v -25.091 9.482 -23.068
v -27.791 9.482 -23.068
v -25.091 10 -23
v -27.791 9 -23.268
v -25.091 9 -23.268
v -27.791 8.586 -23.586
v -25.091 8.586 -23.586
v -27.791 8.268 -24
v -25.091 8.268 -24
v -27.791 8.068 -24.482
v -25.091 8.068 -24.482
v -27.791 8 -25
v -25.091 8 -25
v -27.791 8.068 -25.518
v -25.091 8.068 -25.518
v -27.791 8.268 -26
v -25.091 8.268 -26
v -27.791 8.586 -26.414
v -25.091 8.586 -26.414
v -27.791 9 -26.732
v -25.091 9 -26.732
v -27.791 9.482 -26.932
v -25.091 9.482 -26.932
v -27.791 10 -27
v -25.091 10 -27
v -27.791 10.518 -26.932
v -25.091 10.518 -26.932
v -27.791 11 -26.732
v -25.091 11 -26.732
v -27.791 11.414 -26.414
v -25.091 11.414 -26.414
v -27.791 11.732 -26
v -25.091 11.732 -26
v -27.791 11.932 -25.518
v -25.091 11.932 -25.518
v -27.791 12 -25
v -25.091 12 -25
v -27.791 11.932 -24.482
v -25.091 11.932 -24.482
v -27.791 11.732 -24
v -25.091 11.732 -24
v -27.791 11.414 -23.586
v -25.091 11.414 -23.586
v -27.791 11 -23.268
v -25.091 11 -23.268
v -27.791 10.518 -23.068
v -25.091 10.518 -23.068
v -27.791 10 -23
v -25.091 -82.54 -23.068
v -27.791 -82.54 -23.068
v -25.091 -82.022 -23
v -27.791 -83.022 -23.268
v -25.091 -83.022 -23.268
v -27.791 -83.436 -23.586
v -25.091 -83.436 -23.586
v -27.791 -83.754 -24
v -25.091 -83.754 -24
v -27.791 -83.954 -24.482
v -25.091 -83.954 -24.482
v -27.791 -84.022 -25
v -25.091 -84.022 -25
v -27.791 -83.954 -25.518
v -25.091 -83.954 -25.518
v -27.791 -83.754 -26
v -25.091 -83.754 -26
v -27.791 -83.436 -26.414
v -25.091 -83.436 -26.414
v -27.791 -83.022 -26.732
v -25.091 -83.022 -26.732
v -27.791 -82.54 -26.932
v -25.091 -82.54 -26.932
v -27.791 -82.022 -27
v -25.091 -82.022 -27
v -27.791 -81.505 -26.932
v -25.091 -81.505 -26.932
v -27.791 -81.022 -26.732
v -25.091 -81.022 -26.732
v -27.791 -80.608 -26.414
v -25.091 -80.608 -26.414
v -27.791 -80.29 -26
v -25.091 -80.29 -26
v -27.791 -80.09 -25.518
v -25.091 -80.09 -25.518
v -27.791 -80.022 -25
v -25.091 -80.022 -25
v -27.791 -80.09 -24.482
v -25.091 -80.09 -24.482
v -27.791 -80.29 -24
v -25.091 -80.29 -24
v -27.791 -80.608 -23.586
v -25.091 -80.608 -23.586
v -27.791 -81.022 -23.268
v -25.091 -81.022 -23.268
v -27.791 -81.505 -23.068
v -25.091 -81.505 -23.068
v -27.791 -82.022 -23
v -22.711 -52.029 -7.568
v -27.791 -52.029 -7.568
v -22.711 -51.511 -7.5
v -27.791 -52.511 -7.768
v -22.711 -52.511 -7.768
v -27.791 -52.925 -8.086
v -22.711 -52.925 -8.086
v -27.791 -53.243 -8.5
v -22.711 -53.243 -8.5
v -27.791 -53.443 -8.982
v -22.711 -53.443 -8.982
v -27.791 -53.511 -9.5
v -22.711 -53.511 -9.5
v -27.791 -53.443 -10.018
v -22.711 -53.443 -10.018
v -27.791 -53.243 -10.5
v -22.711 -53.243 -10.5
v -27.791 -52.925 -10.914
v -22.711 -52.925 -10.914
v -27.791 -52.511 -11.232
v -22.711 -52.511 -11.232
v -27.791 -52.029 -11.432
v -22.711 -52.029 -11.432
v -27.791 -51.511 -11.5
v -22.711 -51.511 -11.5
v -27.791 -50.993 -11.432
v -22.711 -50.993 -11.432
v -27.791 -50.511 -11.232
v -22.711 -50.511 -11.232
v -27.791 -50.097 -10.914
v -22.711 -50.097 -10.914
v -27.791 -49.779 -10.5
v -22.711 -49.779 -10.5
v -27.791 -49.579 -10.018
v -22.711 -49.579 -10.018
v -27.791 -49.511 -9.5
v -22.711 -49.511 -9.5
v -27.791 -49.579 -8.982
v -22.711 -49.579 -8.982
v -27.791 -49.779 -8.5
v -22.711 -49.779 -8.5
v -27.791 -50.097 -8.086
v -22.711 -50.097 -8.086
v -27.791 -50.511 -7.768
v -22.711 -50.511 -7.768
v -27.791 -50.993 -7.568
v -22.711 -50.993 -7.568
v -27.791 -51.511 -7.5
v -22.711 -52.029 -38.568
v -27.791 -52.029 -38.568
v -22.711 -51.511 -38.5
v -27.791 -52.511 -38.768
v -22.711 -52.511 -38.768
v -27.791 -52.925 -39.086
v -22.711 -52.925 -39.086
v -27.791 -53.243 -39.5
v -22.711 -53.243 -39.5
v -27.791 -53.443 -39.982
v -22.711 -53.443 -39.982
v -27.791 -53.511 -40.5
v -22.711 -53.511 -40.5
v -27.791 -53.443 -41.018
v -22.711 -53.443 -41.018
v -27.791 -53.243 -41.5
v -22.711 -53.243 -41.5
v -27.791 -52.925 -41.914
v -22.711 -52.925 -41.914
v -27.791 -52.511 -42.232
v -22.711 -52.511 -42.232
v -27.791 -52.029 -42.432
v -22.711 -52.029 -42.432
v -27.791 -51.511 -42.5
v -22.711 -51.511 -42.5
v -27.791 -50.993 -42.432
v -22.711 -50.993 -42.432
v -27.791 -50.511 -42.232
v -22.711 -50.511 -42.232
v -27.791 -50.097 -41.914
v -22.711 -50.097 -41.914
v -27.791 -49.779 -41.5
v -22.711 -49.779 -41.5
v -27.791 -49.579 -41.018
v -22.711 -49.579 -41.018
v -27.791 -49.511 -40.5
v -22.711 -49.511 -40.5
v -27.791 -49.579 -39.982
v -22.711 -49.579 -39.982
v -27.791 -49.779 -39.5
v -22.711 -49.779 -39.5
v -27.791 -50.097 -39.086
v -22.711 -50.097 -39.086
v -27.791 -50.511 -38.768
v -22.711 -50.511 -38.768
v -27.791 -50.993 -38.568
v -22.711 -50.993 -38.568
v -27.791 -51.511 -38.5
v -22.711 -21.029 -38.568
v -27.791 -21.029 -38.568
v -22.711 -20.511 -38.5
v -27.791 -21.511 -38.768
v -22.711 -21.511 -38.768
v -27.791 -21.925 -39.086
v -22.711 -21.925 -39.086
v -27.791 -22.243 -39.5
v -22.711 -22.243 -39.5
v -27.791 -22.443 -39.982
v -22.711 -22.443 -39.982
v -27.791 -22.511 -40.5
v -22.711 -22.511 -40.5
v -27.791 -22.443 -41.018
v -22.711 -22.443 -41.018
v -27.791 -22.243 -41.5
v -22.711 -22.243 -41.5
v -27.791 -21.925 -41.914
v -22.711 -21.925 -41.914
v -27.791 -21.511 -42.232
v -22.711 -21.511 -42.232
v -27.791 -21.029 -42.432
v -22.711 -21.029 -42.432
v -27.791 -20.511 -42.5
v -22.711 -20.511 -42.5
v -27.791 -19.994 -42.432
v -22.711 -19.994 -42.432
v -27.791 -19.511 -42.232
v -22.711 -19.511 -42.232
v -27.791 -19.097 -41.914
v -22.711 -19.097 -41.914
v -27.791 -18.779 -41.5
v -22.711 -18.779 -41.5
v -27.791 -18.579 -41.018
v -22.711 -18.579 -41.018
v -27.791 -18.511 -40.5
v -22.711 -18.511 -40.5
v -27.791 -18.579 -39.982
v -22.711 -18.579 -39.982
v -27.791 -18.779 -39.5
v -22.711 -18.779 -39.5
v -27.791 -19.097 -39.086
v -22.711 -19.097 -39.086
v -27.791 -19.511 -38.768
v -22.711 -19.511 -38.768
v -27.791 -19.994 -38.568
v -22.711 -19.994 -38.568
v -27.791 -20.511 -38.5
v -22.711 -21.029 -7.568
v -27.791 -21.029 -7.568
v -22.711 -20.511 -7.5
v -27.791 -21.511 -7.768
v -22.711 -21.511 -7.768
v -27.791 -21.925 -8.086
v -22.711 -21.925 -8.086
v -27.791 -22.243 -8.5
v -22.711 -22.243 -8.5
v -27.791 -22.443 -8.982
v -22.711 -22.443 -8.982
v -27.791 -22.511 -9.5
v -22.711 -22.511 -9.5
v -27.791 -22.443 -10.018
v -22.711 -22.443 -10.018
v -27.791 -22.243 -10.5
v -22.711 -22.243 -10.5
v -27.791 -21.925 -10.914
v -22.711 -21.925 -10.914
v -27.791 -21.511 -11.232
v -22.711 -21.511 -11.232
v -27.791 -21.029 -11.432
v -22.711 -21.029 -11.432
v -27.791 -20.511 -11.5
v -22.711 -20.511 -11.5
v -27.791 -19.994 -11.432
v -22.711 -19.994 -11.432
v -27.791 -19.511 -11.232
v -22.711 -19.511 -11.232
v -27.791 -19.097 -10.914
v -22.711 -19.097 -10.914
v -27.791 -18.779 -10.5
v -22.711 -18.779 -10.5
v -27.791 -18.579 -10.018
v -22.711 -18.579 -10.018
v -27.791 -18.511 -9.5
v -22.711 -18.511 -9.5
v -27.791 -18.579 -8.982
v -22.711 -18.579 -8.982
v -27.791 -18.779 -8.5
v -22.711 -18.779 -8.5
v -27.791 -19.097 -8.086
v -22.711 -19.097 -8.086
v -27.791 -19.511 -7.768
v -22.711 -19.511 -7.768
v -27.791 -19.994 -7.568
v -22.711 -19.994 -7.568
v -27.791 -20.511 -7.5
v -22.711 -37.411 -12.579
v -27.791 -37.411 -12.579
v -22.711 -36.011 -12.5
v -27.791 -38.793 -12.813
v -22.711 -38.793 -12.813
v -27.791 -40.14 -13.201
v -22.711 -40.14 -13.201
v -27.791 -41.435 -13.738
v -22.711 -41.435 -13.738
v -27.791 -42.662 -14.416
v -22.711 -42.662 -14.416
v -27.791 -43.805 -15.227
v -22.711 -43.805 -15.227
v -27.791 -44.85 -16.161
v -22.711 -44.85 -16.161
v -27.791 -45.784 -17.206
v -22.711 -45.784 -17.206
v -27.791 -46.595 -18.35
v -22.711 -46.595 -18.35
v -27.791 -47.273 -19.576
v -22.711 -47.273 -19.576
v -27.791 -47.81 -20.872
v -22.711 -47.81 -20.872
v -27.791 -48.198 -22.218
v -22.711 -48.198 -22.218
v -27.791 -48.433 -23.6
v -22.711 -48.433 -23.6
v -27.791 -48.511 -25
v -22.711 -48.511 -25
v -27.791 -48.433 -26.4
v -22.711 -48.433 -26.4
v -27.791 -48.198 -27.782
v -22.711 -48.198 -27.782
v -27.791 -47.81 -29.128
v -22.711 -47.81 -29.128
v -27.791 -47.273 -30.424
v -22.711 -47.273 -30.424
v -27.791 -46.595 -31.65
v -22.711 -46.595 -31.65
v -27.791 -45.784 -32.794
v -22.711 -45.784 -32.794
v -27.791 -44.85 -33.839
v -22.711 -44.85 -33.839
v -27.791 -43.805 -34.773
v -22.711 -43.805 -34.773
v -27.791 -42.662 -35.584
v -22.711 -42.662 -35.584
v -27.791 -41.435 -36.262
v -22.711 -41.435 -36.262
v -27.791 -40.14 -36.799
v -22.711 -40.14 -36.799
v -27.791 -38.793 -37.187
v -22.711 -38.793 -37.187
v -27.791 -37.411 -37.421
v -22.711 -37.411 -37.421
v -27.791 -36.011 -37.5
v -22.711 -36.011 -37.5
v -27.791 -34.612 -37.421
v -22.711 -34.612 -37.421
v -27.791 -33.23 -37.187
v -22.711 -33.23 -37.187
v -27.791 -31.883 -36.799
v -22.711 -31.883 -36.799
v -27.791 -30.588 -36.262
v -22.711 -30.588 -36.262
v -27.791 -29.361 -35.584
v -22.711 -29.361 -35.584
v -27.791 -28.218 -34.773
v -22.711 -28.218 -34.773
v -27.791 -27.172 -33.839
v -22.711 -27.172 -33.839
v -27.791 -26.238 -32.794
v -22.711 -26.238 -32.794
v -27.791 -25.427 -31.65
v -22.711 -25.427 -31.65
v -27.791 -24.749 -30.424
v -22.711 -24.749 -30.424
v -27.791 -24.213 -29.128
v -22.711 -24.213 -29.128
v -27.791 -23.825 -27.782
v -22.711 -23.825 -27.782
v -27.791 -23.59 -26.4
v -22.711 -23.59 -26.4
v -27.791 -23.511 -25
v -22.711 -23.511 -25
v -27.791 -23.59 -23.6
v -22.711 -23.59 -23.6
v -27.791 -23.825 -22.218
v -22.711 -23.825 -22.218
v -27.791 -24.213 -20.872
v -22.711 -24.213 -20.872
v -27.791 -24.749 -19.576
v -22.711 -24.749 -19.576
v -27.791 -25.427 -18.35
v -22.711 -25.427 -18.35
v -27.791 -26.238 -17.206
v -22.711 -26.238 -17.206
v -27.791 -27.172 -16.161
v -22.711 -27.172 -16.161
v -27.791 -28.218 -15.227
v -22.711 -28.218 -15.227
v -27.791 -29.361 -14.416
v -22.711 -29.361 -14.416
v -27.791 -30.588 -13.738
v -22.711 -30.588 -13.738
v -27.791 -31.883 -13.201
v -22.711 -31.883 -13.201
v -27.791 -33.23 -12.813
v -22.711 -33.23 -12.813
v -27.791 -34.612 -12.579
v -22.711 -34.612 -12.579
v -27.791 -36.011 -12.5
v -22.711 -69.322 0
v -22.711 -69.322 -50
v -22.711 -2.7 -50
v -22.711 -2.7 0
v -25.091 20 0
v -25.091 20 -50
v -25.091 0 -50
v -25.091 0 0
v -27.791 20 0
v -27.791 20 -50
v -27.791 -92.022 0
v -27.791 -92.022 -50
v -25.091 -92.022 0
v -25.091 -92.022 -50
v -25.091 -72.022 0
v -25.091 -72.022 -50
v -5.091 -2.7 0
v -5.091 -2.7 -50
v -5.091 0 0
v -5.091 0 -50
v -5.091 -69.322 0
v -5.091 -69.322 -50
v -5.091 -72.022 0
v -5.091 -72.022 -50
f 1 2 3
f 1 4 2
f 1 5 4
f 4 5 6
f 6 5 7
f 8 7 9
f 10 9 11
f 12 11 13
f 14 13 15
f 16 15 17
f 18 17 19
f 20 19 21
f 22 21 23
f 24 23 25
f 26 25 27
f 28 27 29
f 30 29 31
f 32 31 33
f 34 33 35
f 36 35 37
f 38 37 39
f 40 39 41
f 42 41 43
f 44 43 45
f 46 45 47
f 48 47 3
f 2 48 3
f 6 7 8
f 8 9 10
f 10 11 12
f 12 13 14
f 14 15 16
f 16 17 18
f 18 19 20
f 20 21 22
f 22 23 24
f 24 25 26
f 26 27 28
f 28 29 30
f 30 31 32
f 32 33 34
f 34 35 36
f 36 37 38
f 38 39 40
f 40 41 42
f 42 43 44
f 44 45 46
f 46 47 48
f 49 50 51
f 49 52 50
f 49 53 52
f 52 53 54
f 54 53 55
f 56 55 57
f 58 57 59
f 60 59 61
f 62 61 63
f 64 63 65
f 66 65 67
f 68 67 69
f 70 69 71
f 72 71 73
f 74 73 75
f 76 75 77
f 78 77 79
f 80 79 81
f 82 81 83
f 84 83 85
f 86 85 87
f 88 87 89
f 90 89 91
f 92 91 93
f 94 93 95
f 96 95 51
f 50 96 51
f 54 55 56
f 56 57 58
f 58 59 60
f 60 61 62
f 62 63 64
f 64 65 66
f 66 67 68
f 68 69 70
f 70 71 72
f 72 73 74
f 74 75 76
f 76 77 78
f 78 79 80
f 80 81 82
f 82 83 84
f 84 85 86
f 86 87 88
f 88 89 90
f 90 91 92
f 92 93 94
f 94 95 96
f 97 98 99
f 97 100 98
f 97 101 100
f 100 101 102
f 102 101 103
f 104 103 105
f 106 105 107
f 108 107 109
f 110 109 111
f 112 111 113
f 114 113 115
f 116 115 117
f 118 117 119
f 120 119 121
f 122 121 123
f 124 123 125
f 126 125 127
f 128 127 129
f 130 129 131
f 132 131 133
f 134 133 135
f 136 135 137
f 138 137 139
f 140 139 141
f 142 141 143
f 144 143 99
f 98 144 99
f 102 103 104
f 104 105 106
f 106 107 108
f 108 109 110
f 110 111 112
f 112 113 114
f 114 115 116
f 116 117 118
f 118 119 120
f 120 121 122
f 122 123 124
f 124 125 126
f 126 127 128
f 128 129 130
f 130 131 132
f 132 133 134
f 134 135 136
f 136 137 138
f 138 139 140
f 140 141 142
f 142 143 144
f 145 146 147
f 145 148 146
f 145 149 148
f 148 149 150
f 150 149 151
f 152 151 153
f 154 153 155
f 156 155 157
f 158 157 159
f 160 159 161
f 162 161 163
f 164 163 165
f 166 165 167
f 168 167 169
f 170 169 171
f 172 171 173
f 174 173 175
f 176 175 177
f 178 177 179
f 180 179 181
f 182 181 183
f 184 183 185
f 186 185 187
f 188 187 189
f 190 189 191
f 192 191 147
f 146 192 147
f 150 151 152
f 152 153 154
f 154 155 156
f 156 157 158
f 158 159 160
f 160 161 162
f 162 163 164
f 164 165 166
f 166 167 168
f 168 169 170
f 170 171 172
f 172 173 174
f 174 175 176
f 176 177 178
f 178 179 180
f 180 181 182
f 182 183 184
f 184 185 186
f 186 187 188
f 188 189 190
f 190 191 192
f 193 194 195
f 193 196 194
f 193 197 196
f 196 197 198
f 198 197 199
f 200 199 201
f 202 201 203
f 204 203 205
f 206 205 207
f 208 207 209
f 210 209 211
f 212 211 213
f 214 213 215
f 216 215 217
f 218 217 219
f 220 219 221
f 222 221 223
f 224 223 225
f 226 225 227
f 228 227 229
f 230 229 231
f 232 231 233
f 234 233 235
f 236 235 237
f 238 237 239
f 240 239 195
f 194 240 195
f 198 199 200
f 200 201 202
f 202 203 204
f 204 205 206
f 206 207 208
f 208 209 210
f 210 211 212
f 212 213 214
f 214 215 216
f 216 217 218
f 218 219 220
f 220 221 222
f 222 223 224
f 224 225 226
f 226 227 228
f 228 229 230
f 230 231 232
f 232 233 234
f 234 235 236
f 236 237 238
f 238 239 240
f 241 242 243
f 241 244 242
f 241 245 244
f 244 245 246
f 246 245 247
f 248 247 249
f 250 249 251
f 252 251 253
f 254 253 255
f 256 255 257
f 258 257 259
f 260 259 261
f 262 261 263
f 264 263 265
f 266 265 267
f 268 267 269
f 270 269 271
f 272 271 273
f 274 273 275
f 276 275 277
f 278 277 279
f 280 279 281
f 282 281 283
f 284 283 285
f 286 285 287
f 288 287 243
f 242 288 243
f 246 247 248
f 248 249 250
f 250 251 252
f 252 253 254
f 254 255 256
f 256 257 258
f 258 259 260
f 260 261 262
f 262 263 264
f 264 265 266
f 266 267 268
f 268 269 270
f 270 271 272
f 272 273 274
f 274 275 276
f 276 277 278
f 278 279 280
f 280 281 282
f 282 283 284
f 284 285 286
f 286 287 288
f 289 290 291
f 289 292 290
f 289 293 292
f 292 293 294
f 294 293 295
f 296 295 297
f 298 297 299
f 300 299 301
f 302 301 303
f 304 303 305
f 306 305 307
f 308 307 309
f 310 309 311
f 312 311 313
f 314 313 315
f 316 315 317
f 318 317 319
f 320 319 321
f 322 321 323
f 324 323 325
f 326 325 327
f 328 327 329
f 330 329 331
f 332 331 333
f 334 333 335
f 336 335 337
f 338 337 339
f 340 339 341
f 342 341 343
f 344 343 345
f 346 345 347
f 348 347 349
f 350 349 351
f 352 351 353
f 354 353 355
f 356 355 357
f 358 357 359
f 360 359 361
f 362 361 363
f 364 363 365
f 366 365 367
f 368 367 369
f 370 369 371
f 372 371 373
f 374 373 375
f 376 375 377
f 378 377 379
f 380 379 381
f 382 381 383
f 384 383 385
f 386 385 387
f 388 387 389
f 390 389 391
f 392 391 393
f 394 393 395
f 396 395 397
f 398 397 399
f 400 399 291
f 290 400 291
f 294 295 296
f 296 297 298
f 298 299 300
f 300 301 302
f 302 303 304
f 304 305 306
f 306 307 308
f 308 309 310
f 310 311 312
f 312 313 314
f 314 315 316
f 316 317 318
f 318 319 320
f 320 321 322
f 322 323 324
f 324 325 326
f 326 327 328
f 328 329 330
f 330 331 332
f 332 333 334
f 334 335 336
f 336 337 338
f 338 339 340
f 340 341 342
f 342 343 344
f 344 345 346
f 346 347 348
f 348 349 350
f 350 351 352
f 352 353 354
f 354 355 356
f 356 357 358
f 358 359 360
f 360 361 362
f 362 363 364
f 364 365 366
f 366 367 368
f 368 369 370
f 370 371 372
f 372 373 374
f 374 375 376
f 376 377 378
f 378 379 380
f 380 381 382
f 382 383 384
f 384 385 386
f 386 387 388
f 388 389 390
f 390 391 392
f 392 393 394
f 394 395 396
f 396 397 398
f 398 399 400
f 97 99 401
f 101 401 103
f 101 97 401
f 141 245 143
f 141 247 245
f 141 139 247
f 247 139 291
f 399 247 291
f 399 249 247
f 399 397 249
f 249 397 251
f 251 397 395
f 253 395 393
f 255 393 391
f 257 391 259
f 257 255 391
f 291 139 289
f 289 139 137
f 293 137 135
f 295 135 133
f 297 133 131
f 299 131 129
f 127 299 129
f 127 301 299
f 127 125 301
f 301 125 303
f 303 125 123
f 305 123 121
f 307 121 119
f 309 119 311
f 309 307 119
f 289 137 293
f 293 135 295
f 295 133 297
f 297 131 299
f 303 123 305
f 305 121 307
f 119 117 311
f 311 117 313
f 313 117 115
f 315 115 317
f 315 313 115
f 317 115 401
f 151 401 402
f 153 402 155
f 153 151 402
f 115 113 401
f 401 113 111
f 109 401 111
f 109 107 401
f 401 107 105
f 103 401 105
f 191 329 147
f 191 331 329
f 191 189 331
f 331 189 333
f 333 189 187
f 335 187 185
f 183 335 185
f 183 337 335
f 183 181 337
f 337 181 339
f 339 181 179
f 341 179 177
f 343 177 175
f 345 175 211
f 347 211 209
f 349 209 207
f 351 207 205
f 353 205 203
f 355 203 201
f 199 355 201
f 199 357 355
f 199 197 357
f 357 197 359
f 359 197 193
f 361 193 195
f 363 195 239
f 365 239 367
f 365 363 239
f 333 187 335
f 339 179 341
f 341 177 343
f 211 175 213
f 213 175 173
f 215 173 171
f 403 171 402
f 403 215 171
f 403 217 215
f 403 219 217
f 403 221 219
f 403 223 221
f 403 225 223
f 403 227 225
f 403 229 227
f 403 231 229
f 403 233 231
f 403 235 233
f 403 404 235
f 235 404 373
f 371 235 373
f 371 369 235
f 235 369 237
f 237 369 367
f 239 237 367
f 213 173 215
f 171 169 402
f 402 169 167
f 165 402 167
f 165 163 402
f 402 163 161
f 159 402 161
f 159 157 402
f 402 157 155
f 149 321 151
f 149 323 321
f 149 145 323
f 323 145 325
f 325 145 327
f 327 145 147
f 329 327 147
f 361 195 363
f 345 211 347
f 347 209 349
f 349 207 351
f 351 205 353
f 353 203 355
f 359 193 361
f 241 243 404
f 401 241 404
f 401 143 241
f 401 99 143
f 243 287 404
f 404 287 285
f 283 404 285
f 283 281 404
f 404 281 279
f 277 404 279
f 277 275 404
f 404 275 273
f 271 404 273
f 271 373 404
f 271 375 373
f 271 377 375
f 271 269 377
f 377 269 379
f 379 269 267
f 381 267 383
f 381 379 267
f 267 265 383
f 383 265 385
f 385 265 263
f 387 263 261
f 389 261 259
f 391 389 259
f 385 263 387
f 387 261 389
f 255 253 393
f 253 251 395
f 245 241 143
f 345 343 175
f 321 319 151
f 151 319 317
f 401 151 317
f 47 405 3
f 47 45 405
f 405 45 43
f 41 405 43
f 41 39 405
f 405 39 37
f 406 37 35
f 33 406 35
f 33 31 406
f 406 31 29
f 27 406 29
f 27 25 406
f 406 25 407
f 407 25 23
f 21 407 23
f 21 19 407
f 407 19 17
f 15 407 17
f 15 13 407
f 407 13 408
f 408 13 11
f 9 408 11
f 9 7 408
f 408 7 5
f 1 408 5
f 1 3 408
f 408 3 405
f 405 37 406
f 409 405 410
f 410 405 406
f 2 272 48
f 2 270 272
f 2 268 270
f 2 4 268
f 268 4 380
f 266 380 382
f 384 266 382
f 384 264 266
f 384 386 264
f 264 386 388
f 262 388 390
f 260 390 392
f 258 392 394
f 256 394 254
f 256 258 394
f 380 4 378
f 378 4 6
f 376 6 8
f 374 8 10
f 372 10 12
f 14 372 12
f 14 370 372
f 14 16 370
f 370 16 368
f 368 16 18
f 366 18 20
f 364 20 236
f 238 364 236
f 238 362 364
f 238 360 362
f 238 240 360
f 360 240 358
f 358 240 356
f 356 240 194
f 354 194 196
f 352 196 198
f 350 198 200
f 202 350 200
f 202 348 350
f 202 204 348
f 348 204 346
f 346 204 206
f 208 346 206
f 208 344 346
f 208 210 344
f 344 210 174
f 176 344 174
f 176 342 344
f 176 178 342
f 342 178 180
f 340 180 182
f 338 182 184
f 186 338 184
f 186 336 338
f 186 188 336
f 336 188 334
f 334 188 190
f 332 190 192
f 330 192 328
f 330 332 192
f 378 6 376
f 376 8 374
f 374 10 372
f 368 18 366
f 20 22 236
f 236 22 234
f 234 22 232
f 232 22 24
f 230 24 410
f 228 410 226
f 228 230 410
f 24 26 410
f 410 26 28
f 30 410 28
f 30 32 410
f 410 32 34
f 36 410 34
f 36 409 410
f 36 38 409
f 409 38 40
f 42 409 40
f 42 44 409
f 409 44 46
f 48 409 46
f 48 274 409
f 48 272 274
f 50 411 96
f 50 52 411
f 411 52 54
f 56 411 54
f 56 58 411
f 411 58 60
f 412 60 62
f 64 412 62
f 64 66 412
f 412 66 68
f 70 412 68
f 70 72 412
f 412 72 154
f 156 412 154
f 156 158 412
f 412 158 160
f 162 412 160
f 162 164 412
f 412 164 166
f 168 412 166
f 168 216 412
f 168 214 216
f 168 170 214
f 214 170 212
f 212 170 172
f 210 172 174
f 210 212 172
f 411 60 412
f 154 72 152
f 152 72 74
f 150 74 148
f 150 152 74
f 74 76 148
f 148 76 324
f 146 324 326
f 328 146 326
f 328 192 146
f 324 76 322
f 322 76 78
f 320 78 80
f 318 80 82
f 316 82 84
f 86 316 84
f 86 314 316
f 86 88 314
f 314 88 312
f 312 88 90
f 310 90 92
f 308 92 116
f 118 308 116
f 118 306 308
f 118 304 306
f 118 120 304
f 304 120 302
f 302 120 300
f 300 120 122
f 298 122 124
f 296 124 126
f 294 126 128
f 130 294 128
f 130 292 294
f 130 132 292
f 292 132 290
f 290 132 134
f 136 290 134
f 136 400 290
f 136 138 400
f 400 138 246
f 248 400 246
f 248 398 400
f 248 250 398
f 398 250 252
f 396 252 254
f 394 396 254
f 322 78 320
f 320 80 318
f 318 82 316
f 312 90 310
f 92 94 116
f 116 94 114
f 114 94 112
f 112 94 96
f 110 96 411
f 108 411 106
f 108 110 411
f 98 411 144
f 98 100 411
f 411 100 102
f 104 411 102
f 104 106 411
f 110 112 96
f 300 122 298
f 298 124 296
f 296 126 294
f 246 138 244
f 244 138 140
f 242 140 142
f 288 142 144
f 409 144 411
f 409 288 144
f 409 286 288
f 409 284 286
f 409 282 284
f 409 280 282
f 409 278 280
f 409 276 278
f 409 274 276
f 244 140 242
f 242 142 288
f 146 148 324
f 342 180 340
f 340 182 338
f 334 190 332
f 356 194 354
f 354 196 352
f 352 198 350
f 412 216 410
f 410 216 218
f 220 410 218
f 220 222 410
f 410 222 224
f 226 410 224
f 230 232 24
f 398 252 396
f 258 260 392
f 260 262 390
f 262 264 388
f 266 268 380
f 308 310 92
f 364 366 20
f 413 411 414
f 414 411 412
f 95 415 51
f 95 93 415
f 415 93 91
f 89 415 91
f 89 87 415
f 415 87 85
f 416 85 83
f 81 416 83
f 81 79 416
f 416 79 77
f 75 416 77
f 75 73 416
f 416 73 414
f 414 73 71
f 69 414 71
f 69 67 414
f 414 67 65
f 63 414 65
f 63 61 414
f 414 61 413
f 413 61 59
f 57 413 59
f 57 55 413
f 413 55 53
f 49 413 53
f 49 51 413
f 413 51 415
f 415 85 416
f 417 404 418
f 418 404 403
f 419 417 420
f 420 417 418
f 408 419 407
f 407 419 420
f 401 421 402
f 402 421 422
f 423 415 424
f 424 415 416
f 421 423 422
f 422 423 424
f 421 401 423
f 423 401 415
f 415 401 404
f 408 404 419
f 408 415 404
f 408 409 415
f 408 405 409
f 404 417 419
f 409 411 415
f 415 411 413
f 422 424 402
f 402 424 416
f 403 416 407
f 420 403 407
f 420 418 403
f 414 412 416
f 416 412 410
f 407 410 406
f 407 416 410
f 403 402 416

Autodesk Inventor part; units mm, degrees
ref_plane "YZ Plane" through (0, 0, 0) normal (1, 0, 0) x (0, 1, 0)
ref_plane "XZ Plane" through (0, 0, 0) normal (0, 1, 0) x (-1, 0, 0)
ref_plane "XY Plane" through (0, 0, 0) normal (0, 0, 1) x (1, 0, 0)
sketch "Sketch1" plane through (0, 0, 0) normal (0, 0, 1) x (1, 0, 0)
  line L0 (-5.0907, -72.0223) -> (-5.0907, -92.0223)
  line L1 (-5.0907, -92.0223) -> (-25.0907, -92.0223)
  line L2 (-25.0907, -92.0223) -> (-25.0907, -72.0223)
  line L3 (-25.0907, -72.0223) -> (-5.0907, -72.0223)
  line L4 (-5.0907, 0) -> (-25.0907, 0)
  line L5 (-25.0907, 0) -> (-25.0907, 20)
  line L6 (-25.0907, 20) -> (-5.0907, 20)
  line L7 (-5.0907, 20) -> (-5.0907, 0)
  line L8 (-22.7107, -2.7) -> (-2.3907, -2.7)
  line L9 (-2.3907, -2.7) -> (-2.3907, 22.7)
  line L10 (-2.3907, 22.7) -> (-27.7907, 22.7)
  line L11 (-27.7907, 22.7) -> (-27.7907, -94.7223)
  line L12 (-27.7907, -94.7223) -> (-2.3907, -94.7223)
  line L13 (-2.3907, -94.7223) -> (-2.3907, -69.3223)
  line L14 (-2.3907, -69.3223) -> (-22.7107, -69.3223)
  line L15 (-22.7107, -2.7) -> (-22.7107, -69.3223)
  line L16 (-25.0907, 20) -> (-25.0907, 22.7)
  line L17 (-22.7107, -2.7) -> (-22.7107, 0)
  line L18 (-22.7107, -69.3223) -> (-22.7107, -72.0223)
  line L19 (-25.0907, -92.0223) -> (-27.7907, -92.0223)
  line L20 (-25.0907, 20) -> (-27.7907, 20)
  line L21 (-5.0907, 0) -> (-5.0907, -2.7)
  line L22 (-5.0907, -72.0223) -> (-5.0907, -69.3223)
  point P0 (0, 0)
extrude "Extrusion1" add sketch "Sketch1" against normal blind 50 contours L3 L18 L14 L22 | L3 L2 L19 L11 L20 L5 L4 L17 L15 L18 | L17 L4 L21 L8
sketch "Sketch2" plane through (-27.7907, -92.0223, 0) normal (-1, 0, 0) x (0, 0, 1)
  line L0 (0, 112.0223) -> (0, 0)
  line L1 (0, 112.0223) -> (-50, 112.0223)
  line L2 (-50, 0) -> (-50, 112.0223)
  line L3 (0, 0) -> (-50, 0)
  circle A0 centre (-25, 56.0111) radius 12.5
  line L4 (-25, 56.0111) -> (-40.5, 56.0111)
  line L5 (-40.5, 56.0111) -> (-40.5, 71.5111)
  circle A1 centre (-40.5, 71.5111) radius 2
  circle A2 centre (-40.5, 40.5111) radius 2
  circle A3 centre (-9.5, 71.5111) radius 2
  circle A4 centre (-9.5, 40.5111) radius 2
  point P0 (0, 92.0223)
  dimension "d2" = 25
  dimension "d3" = 15.5
  dimension "d4" = 15.5
  dimension "d5" = 4
  dimension "d8" = 31
  dimension "d11" = 31
extrude "Extrusion2" cut sketch "Sketch2" against normal blind 50 contours A0 | A1 | A2 | A3 | A4
sketch "Sketch3" plane through (-27.7907, -92.0223, 0) normal (-1, 0, 0) x (0, 0, 1)
  circle A0 centre (-9.5, 40.5111) radius 2
  circle A1 centre (-40.5, 40.5111) radius 2
  circle A2 centre (-40.5, 71.5111) radius 2
  circle A3 centre (-9.5, 71.5111) radius 2
  circle A4 centre (-25, 56.0111) radius 12.5
  line L0 (0, 112.0223) -> (0, 0)
  line L1 (0, 112.0223) -> (-50, 112.0223)
  line L2 (-50, 0) -> (-50, 112.0223)
  line L3 (0, 0) -> (-50, 0)
  line L4 (-619.5788, 92.0223) -> (142.4212, 92.0223)
  line L5 (142.4212, 112.0223) -> (142.4212, 92.0223)
  line L6 (142.4212, 112.0223) -> (-619.5788, 112.0223)
  line L7 (-619.5788, 92.0223) -> (-619.5788, 112.0223)
  circle A5 centre (-25, 102.0223) radius 2
  circle A6 centre (-9.5, 40.5111) radius 2
  circle A7 centre (-40.5, 40.5111) radius 2
  circle A8 centre (-40.5, 71.5111) radius 2
  circle A9 centre (-9.5, 71.5111) radius 2
  circle A10 centre (-25, 56.0111) radius 12.5
  line L8 (0, 112.0223) -> (0, 0)
  line L9 (0, 112.0223) -> (-50, 112.0223)
  line L10 (-50, 0) -> (-50, 112.0223)
  line L11 (0, 0) -> (-50, 0)
  line L12 (-619.5855, 0) -> (142.4145, 0)
  line L13 (142.4145, 20) -> (142.4145, 0)
  line L14 (142.4145, 20) -> (-619.5855, 20)
  line L15 (-619.5855, 0) -> (-619.5855, 20)
  circle A11 centre (-25, 10) radius 2
  point P0 (0, 92.0223)
  dimension "d16" = 4
  dimension "d17" = 4
extrude "Extrusion3" cut sketch "Sketch3" against normal blind 50 contours A5 | A11
properties part number "SecondExtruder"
